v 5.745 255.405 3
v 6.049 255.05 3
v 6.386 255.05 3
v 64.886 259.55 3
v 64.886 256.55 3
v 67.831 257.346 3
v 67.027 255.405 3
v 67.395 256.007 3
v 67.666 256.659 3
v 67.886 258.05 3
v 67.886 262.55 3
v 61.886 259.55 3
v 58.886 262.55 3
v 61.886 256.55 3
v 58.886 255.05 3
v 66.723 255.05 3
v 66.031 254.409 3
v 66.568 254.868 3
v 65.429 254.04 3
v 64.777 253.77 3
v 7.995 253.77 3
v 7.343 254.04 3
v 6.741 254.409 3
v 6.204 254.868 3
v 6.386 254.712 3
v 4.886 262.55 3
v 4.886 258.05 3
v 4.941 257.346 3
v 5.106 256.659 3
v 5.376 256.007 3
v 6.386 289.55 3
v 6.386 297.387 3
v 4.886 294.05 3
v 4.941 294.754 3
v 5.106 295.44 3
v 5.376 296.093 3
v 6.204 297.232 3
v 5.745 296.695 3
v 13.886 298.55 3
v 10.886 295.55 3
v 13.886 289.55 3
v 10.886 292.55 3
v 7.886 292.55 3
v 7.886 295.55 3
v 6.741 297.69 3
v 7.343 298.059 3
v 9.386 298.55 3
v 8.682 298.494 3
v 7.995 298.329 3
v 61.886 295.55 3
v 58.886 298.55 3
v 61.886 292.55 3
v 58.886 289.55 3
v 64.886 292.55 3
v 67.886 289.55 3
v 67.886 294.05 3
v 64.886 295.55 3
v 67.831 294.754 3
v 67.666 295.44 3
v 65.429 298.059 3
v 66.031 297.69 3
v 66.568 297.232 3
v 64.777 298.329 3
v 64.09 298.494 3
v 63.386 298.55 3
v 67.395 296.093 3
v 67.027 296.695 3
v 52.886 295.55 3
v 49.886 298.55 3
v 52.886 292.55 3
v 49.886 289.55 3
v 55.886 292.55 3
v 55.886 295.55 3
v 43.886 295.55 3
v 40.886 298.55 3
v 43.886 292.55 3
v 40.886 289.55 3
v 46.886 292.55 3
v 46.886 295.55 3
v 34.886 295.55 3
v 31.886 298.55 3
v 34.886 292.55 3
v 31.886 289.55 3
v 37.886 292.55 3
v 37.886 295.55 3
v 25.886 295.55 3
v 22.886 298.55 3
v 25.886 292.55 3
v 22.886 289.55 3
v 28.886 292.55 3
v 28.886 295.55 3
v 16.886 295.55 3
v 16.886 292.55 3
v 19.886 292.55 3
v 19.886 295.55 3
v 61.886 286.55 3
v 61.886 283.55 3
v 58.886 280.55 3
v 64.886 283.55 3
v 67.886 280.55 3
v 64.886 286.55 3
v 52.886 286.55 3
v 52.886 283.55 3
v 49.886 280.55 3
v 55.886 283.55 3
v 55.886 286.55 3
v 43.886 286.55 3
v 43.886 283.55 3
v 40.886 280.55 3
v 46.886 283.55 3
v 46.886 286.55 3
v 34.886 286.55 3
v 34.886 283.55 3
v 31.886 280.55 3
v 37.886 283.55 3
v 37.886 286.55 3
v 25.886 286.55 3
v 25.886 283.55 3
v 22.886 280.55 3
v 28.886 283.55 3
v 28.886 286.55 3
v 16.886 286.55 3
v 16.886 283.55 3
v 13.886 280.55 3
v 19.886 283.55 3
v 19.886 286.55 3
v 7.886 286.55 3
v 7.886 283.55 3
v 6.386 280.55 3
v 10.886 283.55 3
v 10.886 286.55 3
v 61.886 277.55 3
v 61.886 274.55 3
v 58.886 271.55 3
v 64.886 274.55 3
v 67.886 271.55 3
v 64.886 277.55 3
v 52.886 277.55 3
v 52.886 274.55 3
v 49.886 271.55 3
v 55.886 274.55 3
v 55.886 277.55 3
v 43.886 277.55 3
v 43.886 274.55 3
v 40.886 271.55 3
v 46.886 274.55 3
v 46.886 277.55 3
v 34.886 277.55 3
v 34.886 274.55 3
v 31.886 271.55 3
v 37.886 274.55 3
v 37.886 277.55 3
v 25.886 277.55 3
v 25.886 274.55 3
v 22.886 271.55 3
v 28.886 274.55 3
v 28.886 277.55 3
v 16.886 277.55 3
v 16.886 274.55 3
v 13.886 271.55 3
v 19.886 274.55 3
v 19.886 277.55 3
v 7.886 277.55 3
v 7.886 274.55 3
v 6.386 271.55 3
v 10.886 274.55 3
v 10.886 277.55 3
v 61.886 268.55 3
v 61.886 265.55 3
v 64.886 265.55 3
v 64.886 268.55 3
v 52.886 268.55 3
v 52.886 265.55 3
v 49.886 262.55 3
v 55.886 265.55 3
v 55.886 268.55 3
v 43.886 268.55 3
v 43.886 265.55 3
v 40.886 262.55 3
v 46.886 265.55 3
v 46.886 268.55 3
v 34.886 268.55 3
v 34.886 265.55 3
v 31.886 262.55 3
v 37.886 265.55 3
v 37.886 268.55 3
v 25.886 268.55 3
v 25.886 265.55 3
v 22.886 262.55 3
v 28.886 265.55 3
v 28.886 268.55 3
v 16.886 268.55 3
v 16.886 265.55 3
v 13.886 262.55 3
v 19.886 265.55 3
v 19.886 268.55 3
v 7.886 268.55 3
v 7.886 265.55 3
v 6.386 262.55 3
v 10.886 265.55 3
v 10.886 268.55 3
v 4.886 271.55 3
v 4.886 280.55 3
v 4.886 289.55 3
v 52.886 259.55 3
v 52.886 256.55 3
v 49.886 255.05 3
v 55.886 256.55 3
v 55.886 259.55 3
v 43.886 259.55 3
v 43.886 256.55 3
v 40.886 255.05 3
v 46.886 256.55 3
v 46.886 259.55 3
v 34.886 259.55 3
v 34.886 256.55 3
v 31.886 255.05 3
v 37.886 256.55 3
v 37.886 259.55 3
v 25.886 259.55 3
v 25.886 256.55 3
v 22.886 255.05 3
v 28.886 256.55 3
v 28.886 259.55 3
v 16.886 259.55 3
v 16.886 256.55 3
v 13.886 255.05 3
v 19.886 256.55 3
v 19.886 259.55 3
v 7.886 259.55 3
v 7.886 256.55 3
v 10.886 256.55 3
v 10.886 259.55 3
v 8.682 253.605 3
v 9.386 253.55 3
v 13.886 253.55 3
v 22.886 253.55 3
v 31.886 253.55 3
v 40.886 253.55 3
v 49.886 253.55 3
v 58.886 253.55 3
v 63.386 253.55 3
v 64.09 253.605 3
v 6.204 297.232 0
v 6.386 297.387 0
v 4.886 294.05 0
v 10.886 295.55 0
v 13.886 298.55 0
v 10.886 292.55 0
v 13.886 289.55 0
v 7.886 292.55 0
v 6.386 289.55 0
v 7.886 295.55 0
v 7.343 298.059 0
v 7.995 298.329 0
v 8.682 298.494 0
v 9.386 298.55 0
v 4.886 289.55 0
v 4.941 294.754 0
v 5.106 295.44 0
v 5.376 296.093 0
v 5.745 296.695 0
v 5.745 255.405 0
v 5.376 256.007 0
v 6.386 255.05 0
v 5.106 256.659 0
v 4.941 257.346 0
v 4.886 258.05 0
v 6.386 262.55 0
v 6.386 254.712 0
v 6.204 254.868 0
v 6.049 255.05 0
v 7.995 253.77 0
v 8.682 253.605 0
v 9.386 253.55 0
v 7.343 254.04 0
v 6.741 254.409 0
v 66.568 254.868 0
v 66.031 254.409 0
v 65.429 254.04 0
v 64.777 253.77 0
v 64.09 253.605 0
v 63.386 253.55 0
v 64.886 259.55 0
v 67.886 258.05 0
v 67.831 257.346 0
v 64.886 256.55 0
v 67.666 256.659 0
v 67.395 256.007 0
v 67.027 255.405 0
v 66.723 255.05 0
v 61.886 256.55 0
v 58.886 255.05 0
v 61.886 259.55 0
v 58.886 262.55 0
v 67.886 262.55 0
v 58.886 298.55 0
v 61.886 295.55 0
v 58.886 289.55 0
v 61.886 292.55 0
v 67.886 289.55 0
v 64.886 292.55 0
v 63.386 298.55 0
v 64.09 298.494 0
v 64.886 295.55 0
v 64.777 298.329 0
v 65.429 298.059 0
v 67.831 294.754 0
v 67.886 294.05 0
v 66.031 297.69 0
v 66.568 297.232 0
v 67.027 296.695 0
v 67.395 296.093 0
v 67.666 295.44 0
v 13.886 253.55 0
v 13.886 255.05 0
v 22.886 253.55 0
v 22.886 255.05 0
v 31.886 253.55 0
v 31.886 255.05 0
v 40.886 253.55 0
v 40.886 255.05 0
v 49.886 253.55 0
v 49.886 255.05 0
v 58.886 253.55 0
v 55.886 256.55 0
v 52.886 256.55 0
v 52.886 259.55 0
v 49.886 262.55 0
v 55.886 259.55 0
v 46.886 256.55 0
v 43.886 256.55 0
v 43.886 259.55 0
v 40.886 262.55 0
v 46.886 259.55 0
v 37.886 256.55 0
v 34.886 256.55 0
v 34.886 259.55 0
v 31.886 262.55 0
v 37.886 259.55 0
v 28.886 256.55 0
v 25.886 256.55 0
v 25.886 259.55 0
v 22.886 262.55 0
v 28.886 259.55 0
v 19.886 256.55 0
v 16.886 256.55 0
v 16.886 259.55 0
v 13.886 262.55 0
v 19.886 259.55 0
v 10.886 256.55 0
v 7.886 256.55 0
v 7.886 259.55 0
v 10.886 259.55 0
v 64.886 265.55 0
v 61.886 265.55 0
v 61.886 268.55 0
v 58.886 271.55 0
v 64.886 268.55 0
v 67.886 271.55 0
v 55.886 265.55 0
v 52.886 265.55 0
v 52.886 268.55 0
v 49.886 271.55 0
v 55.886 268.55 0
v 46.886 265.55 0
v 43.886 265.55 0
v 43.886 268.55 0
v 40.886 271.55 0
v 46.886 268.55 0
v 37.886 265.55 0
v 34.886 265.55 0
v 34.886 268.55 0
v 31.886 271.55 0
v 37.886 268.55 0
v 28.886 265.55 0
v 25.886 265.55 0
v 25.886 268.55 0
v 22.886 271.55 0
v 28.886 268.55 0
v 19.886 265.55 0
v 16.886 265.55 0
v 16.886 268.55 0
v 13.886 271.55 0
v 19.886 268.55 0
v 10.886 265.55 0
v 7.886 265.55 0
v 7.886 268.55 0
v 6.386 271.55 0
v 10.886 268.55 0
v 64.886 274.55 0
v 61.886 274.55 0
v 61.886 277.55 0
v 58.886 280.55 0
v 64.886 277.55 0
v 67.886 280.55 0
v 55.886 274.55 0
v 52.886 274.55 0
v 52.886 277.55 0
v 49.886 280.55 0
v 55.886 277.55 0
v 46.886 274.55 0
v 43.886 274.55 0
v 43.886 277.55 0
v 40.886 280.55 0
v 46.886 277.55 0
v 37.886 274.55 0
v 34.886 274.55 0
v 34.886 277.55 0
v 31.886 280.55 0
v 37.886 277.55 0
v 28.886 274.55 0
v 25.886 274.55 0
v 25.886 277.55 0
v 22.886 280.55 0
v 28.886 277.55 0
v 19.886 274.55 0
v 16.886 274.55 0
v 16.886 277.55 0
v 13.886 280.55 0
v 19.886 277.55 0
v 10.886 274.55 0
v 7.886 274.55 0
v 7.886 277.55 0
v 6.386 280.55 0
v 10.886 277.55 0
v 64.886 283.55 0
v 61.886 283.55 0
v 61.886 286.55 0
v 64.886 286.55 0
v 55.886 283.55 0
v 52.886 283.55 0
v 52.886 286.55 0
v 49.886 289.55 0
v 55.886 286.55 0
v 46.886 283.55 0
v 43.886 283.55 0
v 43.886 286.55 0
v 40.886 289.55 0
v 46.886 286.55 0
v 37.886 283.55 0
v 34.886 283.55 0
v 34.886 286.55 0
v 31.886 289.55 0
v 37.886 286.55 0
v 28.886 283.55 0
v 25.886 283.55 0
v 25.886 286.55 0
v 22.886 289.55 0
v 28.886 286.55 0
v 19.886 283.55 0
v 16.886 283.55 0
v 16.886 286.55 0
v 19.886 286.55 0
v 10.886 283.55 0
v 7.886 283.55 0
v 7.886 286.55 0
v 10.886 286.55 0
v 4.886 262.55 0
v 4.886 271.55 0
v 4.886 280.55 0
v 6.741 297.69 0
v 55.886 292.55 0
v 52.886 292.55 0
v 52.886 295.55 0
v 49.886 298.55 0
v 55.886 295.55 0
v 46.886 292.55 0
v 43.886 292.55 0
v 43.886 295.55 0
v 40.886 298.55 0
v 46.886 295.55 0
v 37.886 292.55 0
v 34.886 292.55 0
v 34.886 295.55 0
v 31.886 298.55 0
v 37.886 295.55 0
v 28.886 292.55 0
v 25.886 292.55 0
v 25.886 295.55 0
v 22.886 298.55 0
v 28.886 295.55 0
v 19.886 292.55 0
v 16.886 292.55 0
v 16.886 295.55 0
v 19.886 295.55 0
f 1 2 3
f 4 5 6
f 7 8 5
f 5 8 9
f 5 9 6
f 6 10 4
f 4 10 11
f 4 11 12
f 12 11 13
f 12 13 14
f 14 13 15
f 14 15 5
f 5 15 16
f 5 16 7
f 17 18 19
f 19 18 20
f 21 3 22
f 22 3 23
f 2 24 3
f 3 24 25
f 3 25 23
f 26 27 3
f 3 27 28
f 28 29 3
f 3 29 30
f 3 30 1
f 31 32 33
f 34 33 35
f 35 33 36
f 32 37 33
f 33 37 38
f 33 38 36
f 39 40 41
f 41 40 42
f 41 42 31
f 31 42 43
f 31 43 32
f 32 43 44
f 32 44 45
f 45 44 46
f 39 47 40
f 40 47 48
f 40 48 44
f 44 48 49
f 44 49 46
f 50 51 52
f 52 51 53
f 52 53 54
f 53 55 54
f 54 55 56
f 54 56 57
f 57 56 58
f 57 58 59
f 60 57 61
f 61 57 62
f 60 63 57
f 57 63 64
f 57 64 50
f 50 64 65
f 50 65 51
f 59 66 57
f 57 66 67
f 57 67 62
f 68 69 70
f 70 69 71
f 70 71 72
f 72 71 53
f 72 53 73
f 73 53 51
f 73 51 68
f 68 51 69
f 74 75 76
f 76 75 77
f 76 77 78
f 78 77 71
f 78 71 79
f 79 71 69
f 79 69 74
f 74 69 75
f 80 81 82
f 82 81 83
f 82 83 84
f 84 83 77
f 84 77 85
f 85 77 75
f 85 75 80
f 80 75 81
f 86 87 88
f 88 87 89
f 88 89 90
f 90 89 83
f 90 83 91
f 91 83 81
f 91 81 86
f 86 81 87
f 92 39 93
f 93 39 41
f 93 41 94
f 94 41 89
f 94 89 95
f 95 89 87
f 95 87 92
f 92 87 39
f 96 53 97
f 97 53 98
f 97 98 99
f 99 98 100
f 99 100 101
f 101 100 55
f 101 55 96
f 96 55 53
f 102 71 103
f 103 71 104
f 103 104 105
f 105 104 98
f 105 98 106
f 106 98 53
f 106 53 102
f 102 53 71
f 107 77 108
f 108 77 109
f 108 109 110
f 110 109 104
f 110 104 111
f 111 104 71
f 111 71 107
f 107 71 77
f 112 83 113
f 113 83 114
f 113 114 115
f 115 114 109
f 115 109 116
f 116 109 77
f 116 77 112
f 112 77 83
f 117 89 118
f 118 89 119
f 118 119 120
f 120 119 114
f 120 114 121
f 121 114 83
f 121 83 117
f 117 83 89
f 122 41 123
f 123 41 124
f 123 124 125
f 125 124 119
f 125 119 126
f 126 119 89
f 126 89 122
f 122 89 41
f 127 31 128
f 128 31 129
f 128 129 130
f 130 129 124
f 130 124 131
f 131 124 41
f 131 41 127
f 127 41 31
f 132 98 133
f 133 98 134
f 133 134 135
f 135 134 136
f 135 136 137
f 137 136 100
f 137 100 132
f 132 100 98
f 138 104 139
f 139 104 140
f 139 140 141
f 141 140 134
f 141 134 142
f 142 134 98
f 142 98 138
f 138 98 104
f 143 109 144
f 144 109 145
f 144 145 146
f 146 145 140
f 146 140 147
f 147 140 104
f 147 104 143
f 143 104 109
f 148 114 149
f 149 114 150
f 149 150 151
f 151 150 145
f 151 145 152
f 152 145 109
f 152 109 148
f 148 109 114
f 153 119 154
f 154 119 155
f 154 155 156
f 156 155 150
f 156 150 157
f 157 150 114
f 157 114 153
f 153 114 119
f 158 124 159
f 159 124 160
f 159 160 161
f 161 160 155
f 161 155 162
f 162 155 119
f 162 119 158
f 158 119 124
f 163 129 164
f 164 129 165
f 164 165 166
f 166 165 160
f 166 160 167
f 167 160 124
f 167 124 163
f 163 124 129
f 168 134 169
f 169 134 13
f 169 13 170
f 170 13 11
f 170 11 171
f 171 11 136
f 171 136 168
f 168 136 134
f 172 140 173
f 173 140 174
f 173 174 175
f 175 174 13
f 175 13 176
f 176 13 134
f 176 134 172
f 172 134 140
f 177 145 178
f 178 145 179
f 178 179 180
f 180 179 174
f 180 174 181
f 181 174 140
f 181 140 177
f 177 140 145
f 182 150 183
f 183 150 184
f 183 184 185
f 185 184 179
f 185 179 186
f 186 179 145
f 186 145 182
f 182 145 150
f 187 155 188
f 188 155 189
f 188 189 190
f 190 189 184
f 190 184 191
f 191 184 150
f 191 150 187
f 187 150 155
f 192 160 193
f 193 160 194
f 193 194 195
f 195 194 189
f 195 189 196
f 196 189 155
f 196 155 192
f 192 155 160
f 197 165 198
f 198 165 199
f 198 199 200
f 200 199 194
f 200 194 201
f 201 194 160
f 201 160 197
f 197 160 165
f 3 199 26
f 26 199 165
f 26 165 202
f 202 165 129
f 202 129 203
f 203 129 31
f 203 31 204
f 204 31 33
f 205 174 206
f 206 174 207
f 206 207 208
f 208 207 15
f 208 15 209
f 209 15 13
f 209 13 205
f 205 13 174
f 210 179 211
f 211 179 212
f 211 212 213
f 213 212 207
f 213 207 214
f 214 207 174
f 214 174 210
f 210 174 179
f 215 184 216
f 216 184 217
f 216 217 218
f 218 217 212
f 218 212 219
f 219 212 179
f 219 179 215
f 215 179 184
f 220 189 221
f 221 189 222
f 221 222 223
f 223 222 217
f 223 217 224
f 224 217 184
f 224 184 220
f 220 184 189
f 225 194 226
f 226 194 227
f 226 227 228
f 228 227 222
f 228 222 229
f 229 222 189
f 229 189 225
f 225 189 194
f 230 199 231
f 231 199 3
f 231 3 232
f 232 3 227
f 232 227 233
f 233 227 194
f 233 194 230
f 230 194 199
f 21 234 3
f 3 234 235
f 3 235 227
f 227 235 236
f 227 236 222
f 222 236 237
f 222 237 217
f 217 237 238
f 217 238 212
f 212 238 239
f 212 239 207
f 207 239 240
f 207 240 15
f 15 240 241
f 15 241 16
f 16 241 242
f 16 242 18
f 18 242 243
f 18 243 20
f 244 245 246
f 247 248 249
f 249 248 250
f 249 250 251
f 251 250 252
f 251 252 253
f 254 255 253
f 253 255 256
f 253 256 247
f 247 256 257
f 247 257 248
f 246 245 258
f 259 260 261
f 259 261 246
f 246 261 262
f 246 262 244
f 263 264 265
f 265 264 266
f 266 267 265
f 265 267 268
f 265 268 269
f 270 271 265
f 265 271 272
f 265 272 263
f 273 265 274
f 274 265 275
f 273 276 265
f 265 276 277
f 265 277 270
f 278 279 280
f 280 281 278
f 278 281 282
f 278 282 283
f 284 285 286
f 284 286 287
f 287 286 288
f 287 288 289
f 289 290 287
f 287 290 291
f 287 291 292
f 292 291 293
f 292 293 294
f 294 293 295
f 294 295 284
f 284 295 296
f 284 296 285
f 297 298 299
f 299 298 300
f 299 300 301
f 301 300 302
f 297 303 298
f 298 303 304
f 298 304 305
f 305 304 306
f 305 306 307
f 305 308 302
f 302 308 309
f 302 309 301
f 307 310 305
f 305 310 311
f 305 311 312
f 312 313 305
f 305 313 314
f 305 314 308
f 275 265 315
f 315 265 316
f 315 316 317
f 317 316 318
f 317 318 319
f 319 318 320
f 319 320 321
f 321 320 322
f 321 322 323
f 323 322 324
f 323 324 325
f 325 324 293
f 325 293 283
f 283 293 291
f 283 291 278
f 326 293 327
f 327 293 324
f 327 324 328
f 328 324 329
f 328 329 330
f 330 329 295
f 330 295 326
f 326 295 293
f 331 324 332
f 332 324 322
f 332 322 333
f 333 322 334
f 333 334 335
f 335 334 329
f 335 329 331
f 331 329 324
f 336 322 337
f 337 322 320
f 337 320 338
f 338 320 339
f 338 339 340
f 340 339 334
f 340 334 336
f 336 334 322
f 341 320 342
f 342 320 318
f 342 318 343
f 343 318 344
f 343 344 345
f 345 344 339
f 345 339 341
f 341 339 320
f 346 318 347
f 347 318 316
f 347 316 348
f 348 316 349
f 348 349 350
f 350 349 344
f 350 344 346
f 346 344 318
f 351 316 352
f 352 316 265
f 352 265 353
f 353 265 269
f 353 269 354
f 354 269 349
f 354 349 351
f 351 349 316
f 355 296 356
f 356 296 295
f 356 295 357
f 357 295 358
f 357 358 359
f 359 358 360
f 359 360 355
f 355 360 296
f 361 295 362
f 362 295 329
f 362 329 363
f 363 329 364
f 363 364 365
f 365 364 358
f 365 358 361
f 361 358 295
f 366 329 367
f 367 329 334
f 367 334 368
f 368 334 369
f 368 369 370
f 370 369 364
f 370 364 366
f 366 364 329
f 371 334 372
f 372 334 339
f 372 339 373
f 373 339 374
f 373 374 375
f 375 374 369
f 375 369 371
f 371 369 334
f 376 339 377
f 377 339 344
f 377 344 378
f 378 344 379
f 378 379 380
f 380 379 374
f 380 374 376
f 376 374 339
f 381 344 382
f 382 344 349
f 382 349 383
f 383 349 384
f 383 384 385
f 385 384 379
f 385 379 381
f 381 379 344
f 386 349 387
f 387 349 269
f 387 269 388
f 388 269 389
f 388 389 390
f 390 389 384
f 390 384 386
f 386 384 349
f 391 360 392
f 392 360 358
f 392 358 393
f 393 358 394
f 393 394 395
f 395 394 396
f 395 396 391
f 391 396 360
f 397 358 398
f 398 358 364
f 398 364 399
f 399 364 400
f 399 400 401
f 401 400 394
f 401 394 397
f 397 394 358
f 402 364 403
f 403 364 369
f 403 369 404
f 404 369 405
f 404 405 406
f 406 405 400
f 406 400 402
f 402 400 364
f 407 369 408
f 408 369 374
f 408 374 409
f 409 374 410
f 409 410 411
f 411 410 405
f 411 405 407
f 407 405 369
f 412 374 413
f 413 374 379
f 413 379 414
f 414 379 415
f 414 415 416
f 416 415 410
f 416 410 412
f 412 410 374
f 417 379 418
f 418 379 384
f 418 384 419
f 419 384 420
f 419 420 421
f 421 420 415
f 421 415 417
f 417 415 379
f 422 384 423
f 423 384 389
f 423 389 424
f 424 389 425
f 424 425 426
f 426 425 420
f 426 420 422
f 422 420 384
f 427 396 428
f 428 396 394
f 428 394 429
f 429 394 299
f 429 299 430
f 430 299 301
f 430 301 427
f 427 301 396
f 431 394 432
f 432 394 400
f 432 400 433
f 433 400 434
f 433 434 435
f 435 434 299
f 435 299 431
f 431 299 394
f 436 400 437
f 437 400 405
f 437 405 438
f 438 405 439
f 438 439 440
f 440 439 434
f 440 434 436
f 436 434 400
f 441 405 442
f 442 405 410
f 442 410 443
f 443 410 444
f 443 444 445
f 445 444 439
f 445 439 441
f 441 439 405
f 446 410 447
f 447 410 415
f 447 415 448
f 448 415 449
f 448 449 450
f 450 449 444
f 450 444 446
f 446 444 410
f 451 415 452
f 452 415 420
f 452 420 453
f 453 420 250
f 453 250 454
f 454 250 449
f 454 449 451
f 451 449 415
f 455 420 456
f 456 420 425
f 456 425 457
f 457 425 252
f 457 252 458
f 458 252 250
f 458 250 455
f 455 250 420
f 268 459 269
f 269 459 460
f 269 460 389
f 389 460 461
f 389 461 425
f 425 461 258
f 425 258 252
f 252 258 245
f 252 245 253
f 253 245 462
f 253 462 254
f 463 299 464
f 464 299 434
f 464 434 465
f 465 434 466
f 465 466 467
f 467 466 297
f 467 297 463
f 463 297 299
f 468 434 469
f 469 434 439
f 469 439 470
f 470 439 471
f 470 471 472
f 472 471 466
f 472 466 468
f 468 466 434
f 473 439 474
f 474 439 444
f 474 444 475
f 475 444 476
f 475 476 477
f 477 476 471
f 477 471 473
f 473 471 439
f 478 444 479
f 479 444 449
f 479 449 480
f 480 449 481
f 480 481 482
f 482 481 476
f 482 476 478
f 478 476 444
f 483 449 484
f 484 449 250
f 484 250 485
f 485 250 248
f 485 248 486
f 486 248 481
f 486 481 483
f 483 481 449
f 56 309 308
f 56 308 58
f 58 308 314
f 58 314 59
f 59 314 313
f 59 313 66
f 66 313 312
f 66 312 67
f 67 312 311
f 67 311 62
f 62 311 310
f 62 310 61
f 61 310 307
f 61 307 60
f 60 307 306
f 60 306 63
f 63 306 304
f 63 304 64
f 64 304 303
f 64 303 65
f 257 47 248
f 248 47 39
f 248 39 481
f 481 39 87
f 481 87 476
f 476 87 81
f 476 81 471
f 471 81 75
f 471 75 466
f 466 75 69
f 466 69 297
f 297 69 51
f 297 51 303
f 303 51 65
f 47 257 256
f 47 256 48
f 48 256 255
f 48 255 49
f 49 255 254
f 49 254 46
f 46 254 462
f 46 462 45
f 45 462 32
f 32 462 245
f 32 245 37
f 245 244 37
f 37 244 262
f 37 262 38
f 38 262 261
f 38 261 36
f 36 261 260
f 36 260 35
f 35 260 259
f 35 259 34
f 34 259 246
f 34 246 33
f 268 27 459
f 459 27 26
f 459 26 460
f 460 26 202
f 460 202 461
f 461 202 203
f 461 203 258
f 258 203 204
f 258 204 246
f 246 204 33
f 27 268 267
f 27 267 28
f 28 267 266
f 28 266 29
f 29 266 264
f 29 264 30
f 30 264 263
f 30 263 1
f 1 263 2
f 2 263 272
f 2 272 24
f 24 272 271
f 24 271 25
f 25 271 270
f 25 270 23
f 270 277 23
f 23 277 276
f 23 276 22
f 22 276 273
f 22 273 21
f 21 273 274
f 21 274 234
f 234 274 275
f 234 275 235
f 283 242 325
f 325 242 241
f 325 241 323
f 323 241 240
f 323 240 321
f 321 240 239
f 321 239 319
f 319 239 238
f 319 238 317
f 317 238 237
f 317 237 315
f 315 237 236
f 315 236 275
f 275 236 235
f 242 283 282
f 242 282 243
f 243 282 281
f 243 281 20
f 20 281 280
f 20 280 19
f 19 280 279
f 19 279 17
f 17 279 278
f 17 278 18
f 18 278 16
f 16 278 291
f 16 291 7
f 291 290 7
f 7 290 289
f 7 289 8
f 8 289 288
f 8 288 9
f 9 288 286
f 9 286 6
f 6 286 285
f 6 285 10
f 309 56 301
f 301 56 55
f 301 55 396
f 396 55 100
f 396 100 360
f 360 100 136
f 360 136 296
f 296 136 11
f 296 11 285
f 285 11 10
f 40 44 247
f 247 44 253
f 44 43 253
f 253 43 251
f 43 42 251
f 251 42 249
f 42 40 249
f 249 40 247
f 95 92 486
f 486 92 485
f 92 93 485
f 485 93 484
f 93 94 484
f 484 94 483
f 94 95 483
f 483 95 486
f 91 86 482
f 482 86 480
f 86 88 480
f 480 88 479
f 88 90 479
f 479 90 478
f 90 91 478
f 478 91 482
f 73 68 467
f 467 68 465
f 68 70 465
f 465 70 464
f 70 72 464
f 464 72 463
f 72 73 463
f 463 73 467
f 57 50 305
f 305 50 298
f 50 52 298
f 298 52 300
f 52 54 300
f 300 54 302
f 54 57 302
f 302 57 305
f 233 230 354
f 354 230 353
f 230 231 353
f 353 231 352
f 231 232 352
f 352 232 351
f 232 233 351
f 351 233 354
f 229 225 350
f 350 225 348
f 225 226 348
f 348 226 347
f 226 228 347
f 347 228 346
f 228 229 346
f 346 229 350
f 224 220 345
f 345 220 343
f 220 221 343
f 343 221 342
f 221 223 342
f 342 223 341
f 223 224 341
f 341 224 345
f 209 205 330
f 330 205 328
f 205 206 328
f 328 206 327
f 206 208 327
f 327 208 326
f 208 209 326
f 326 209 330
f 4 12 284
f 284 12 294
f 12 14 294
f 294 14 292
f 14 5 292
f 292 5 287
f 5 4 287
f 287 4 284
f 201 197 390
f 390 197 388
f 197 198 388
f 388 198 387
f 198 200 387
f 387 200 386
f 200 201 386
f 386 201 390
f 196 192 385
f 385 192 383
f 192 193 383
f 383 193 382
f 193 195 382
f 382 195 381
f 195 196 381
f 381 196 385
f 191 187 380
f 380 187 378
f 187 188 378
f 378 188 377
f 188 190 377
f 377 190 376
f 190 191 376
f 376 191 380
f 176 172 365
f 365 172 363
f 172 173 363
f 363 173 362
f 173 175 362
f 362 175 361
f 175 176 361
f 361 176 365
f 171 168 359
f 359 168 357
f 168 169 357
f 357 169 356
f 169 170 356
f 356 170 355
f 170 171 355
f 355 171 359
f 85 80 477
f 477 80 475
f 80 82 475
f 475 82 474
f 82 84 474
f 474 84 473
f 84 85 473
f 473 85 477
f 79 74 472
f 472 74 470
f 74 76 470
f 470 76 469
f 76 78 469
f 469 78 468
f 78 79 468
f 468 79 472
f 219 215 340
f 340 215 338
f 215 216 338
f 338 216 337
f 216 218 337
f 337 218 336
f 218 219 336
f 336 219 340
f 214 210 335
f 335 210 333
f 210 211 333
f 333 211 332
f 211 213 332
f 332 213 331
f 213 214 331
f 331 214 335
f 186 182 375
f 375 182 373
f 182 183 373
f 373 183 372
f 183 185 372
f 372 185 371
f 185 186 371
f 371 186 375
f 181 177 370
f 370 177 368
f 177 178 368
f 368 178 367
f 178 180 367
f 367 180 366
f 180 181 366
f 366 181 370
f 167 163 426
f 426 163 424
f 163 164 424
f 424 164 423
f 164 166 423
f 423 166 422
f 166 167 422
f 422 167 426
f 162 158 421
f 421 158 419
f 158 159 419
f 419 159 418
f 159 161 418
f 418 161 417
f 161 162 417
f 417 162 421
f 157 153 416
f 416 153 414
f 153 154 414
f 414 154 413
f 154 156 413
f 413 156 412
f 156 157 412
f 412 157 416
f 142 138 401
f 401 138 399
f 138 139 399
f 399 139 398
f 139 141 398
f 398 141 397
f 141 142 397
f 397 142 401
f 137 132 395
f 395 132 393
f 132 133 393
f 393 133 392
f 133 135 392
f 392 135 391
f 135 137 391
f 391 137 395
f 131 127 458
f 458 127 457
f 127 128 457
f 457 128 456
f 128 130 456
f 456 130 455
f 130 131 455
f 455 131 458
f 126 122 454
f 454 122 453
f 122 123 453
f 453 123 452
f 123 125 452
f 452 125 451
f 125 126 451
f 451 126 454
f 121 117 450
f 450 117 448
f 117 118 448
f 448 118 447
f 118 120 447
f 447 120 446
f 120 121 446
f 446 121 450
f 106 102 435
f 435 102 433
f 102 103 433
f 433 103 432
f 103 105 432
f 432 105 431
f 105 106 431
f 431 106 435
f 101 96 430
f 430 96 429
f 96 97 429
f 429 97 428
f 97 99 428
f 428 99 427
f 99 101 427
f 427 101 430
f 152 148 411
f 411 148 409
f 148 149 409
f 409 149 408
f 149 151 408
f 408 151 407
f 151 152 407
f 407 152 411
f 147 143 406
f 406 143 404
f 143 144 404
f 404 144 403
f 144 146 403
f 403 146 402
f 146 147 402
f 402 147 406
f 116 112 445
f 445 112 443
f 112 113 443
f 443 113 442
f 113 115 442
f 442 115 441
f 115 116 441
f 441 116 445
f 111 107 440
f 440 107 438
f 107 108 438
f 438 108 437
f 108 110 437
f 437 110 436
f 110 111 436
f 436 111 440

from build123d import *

# Parameters (mm, degrees)
MODEL_W                 = 3
MODEL_H                 = 3
SALIENTE_EXTRUIR1_DEPTH = 3


with BuildPart() as part:
    # Model → Saliente-Extruir1 (new body)
    with BuildSketch(Plane.XY):
        with BuildLine():
            Line((9.385930567, 298.549610222), (63.385930567, 298.549610222))
            ThreePointArc((63.385930567, 298.549610222), (66.567911083, 297.231590737), (67.885930567, 294.049610222))
            Line((67.885930567, 294.049610222), (67.885930567, 258.049610222))
            ThreePointArc((67.885930567, 258.049610222), (66.567911083, 254.867629706), (63.385930567, 253.549610222))
            Line((63.385930567, 253.549610222), (9.385930567, 253.549610222))
            ThreePointArc((9.385930567, 253.549610222), (6.203950052, 254.867629706), (4.885930567, 258.049610222))
            Line((4.885930567, 258.049610222), (4.885930567, 294.049610222))
            ThreePointArc((4.885930567, 294.049610222), (6.203950052, 297.231590737), (9.385930567, 298.549610222))
        make_face()
        with Locations((9.385930567, 294.049610222)):
            Rectangle(MODEL_W, MODEL_H, mode=Mode.SUBTRACT)
        with Locations((18.385930567, 294.049610222)):
            Rectangle(MODEL_W, MODEL_H, mode=Mode.SUBTRACT)
        with Locations((27.385930567, 294.049610222)):
            Rectangle(MODEL_W, MODEL_H, mode=Mode.SUBTRACT)
        with Locations((54.385930567, 294.049610222)):
            Rectangle(MODEL_W, MODEL_H, mode=Mode.SUBTRACT)
        with Locations((63.385930567, 294.049610222)):
            Rectangle(MODEL_W, MODEL_H, mode=Mode.SUBTRACT)
        with Locations((9.385930567, 258.049610222)):
            Rectangle(MODEL_W, MODEL_H, mode=Mode.SUBTRACT)
        with Locations((18.385930567, 258.049610222)):
            Rectangle(MODEL_W, MODEL_H, mode=Mode.SUBTRACT)
        with Locations((27.385930567, 258.049610222)):
            Rectangle(MODEL_W, MODEL_H, mode=Mode.SUBTRACT)
        with Locations((54.385930567, 258.049610222)):
            Rectangle(MODEL_W, MODEL_H, mode=Mode.SUBTRACT)
        with Locations((63.385930567, 258.049610222)):
            Rectangle(MODEL_W, MODEL_H, mode=Mode.SUBTRACT)
        with Locations((9.385930567, 267.049610222)):
            Rectangle(MODEL_W, MODEL_H, mode=Mode.SUBTRACT)
        with Locations((18.385930567, 267.049610222)):
            Rectangle(MODEL_W, MODEL_H, mode=Mode.SUBTRACT)
        with Locations((27.385930567, 267.049610222)):
            Rectangle(MODEL_W, MODEL_H, mode=Mode.SUBTRACT)
        with Locations((54.385930567, 267.049610222)):
            Rectangle(MODEL_W, MODEL_H, mode=Mode.SUBTRACT)
        with Locations((63.385930567, 267.049610222)):
            Rectangle(MODEL_W, MODEL_H, mode=Mode.SUBTRACT)
        with Locations((36.385930567, 294.049610222)):
            Rectangle(MODEL_W, MODEL_H, mode=Mode.SUBTRACT)
        with Locations((45.385930567, 294.049610222)):
            Rectangle(MODEL_W, MODEL_H, mode=Mode.SUBTRACT)
        with Locations((36.385930567, 258.049610222)):
            Rectangle(MODEL_W, MODEL_H, mode=Mode.SUBTRACT)
        with Locations((45.385930567, 258.049610222)):
            Rectangle(MODEL_W, MODEL_H, mode=Mode.SUBTRACT)
        with Locations((36.385930567, 267.049610222)):
            Rectangle(MODEL_W, MODEL_H, mode=Mode.SUBTRACT)
        with Locations((45.385930567, 267.049610222)):
            Rectangle(MODEL_W, MODEL_H, mode=Mode.SUBTRACT)
        with Locations((9.385930567, 276.049610222)):
            Rectangle(MODEL_W, MODEL_H, mode=Mode.SUBTRACT)
        with Locations((18.385930567, 276.049610222)):
            Rectangle(MODEL_W, MODEL_H, mode=Mode.SUBTRACT)
        with Locations((27.385930567, 276.049610222)):
            Rectangle(MODEL_W, MODEL_H, mode=Mode.SUBTRACT)
        with Locations((54.385930567, 276.049610222)):
            Rectangle(MODEL_W, MODEL_H, mode=Mode.SUBTRACT)
        with Locations((63.385930567, 276.049610222)):
            Rectangle(MODEL_W, MODEL_H, mode=Mode.SUBTRACT)
        with Locations((9.385930567, 285.049610222)):
            Rectangle(MODEL_W, MODEL_H, mode=Mode.SUBTRACT)
        with Locations((18.385930567, 285.049610222)):
            Rectangle(MODEL_W, MODEL_H, mode=Mode.SUBTRACT)
        with Locations((27.385930567, 285.049610222)):
            Rectangle(MODEL_W, MODEL_H, mode=Mode.SUBTRACT)
        with Locations((54.385930567, 285.049610222)):
            Rectangle(MODEL_W, MODEL_H, mode=Mode.SUBTRACT)
        with Locations((63.385930567, 285.049610222)):
            Rectangle(MODEL_W, MODEL_H, mode=Mode.SUBTRACT)
        with Locations((36.385930567, 276.049610222)):
            Rectangle(MODEL_W, MODEL_H, mode=Mode.SUBTRACT)
        with Locations((45.385930567, 276.049610222)):
            Rectangle(MODEL_W, MODEL_H, mode=Mode.SUBTRACT)
        with Locations((36.385930567, 285.049610222)):
            Rectangle(MODEL_W, MODEL_H, mode=Mode.SUBTRACT)
        with Locations((45.385930567, 285.049610222)):
            Rectangle(MODEL_W, MODEL_H, mode=Mode.SUBTRACT)
    extrude(amount=SALIENTE_EXTRUIR1_DEPTH)


solid = part.part
